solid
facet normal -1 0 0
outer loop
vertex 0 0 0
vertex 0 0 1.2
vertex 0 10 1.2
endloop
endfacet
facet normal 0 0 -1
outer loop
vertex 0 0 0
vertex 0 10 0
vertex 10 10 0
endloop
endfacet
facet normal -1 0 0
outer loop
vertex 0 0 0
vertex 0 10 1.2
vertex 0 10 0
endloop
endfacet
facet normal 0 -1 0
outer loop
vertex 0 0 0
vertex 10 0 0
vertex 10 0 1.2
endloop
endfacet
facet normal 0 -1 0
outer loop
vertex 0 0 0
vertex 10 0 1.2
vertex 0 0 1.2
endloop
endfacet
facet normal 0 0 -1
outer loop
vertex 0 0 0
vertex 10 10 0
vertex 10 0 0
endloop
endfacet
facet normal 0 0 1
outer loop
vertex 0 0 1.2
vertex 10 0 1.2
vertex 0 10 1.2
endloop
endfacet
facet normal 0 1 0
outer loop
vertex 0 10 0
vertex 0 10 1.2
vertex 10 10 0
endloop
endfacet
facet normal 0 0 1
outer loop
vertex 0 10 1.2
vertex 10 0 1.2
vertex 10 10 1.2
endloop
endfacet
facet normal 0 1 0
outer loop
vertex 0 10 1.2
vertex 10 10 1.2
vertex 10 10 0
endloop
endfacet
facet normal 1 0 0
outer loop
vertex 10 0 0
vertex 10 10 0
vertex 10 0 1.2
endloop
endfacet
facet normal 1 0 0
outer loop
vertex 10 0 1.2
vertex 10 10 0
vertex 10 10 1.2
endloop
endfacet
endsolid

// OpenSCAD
/* Warning, this is a very basic generator with a lot of approximation 
input data : [TFBGA, B6B, 10x10x1.2mm, 128, , A, C04-21138A]
generated by com.zoubworld.electronics.cad.model3d.Basic
Date : Sun Feb 15 10:50:49 CET 2026
*/

//body
color("black")
translate([0,0,0])
cube([10.0,10.0,1.2], center=false);
